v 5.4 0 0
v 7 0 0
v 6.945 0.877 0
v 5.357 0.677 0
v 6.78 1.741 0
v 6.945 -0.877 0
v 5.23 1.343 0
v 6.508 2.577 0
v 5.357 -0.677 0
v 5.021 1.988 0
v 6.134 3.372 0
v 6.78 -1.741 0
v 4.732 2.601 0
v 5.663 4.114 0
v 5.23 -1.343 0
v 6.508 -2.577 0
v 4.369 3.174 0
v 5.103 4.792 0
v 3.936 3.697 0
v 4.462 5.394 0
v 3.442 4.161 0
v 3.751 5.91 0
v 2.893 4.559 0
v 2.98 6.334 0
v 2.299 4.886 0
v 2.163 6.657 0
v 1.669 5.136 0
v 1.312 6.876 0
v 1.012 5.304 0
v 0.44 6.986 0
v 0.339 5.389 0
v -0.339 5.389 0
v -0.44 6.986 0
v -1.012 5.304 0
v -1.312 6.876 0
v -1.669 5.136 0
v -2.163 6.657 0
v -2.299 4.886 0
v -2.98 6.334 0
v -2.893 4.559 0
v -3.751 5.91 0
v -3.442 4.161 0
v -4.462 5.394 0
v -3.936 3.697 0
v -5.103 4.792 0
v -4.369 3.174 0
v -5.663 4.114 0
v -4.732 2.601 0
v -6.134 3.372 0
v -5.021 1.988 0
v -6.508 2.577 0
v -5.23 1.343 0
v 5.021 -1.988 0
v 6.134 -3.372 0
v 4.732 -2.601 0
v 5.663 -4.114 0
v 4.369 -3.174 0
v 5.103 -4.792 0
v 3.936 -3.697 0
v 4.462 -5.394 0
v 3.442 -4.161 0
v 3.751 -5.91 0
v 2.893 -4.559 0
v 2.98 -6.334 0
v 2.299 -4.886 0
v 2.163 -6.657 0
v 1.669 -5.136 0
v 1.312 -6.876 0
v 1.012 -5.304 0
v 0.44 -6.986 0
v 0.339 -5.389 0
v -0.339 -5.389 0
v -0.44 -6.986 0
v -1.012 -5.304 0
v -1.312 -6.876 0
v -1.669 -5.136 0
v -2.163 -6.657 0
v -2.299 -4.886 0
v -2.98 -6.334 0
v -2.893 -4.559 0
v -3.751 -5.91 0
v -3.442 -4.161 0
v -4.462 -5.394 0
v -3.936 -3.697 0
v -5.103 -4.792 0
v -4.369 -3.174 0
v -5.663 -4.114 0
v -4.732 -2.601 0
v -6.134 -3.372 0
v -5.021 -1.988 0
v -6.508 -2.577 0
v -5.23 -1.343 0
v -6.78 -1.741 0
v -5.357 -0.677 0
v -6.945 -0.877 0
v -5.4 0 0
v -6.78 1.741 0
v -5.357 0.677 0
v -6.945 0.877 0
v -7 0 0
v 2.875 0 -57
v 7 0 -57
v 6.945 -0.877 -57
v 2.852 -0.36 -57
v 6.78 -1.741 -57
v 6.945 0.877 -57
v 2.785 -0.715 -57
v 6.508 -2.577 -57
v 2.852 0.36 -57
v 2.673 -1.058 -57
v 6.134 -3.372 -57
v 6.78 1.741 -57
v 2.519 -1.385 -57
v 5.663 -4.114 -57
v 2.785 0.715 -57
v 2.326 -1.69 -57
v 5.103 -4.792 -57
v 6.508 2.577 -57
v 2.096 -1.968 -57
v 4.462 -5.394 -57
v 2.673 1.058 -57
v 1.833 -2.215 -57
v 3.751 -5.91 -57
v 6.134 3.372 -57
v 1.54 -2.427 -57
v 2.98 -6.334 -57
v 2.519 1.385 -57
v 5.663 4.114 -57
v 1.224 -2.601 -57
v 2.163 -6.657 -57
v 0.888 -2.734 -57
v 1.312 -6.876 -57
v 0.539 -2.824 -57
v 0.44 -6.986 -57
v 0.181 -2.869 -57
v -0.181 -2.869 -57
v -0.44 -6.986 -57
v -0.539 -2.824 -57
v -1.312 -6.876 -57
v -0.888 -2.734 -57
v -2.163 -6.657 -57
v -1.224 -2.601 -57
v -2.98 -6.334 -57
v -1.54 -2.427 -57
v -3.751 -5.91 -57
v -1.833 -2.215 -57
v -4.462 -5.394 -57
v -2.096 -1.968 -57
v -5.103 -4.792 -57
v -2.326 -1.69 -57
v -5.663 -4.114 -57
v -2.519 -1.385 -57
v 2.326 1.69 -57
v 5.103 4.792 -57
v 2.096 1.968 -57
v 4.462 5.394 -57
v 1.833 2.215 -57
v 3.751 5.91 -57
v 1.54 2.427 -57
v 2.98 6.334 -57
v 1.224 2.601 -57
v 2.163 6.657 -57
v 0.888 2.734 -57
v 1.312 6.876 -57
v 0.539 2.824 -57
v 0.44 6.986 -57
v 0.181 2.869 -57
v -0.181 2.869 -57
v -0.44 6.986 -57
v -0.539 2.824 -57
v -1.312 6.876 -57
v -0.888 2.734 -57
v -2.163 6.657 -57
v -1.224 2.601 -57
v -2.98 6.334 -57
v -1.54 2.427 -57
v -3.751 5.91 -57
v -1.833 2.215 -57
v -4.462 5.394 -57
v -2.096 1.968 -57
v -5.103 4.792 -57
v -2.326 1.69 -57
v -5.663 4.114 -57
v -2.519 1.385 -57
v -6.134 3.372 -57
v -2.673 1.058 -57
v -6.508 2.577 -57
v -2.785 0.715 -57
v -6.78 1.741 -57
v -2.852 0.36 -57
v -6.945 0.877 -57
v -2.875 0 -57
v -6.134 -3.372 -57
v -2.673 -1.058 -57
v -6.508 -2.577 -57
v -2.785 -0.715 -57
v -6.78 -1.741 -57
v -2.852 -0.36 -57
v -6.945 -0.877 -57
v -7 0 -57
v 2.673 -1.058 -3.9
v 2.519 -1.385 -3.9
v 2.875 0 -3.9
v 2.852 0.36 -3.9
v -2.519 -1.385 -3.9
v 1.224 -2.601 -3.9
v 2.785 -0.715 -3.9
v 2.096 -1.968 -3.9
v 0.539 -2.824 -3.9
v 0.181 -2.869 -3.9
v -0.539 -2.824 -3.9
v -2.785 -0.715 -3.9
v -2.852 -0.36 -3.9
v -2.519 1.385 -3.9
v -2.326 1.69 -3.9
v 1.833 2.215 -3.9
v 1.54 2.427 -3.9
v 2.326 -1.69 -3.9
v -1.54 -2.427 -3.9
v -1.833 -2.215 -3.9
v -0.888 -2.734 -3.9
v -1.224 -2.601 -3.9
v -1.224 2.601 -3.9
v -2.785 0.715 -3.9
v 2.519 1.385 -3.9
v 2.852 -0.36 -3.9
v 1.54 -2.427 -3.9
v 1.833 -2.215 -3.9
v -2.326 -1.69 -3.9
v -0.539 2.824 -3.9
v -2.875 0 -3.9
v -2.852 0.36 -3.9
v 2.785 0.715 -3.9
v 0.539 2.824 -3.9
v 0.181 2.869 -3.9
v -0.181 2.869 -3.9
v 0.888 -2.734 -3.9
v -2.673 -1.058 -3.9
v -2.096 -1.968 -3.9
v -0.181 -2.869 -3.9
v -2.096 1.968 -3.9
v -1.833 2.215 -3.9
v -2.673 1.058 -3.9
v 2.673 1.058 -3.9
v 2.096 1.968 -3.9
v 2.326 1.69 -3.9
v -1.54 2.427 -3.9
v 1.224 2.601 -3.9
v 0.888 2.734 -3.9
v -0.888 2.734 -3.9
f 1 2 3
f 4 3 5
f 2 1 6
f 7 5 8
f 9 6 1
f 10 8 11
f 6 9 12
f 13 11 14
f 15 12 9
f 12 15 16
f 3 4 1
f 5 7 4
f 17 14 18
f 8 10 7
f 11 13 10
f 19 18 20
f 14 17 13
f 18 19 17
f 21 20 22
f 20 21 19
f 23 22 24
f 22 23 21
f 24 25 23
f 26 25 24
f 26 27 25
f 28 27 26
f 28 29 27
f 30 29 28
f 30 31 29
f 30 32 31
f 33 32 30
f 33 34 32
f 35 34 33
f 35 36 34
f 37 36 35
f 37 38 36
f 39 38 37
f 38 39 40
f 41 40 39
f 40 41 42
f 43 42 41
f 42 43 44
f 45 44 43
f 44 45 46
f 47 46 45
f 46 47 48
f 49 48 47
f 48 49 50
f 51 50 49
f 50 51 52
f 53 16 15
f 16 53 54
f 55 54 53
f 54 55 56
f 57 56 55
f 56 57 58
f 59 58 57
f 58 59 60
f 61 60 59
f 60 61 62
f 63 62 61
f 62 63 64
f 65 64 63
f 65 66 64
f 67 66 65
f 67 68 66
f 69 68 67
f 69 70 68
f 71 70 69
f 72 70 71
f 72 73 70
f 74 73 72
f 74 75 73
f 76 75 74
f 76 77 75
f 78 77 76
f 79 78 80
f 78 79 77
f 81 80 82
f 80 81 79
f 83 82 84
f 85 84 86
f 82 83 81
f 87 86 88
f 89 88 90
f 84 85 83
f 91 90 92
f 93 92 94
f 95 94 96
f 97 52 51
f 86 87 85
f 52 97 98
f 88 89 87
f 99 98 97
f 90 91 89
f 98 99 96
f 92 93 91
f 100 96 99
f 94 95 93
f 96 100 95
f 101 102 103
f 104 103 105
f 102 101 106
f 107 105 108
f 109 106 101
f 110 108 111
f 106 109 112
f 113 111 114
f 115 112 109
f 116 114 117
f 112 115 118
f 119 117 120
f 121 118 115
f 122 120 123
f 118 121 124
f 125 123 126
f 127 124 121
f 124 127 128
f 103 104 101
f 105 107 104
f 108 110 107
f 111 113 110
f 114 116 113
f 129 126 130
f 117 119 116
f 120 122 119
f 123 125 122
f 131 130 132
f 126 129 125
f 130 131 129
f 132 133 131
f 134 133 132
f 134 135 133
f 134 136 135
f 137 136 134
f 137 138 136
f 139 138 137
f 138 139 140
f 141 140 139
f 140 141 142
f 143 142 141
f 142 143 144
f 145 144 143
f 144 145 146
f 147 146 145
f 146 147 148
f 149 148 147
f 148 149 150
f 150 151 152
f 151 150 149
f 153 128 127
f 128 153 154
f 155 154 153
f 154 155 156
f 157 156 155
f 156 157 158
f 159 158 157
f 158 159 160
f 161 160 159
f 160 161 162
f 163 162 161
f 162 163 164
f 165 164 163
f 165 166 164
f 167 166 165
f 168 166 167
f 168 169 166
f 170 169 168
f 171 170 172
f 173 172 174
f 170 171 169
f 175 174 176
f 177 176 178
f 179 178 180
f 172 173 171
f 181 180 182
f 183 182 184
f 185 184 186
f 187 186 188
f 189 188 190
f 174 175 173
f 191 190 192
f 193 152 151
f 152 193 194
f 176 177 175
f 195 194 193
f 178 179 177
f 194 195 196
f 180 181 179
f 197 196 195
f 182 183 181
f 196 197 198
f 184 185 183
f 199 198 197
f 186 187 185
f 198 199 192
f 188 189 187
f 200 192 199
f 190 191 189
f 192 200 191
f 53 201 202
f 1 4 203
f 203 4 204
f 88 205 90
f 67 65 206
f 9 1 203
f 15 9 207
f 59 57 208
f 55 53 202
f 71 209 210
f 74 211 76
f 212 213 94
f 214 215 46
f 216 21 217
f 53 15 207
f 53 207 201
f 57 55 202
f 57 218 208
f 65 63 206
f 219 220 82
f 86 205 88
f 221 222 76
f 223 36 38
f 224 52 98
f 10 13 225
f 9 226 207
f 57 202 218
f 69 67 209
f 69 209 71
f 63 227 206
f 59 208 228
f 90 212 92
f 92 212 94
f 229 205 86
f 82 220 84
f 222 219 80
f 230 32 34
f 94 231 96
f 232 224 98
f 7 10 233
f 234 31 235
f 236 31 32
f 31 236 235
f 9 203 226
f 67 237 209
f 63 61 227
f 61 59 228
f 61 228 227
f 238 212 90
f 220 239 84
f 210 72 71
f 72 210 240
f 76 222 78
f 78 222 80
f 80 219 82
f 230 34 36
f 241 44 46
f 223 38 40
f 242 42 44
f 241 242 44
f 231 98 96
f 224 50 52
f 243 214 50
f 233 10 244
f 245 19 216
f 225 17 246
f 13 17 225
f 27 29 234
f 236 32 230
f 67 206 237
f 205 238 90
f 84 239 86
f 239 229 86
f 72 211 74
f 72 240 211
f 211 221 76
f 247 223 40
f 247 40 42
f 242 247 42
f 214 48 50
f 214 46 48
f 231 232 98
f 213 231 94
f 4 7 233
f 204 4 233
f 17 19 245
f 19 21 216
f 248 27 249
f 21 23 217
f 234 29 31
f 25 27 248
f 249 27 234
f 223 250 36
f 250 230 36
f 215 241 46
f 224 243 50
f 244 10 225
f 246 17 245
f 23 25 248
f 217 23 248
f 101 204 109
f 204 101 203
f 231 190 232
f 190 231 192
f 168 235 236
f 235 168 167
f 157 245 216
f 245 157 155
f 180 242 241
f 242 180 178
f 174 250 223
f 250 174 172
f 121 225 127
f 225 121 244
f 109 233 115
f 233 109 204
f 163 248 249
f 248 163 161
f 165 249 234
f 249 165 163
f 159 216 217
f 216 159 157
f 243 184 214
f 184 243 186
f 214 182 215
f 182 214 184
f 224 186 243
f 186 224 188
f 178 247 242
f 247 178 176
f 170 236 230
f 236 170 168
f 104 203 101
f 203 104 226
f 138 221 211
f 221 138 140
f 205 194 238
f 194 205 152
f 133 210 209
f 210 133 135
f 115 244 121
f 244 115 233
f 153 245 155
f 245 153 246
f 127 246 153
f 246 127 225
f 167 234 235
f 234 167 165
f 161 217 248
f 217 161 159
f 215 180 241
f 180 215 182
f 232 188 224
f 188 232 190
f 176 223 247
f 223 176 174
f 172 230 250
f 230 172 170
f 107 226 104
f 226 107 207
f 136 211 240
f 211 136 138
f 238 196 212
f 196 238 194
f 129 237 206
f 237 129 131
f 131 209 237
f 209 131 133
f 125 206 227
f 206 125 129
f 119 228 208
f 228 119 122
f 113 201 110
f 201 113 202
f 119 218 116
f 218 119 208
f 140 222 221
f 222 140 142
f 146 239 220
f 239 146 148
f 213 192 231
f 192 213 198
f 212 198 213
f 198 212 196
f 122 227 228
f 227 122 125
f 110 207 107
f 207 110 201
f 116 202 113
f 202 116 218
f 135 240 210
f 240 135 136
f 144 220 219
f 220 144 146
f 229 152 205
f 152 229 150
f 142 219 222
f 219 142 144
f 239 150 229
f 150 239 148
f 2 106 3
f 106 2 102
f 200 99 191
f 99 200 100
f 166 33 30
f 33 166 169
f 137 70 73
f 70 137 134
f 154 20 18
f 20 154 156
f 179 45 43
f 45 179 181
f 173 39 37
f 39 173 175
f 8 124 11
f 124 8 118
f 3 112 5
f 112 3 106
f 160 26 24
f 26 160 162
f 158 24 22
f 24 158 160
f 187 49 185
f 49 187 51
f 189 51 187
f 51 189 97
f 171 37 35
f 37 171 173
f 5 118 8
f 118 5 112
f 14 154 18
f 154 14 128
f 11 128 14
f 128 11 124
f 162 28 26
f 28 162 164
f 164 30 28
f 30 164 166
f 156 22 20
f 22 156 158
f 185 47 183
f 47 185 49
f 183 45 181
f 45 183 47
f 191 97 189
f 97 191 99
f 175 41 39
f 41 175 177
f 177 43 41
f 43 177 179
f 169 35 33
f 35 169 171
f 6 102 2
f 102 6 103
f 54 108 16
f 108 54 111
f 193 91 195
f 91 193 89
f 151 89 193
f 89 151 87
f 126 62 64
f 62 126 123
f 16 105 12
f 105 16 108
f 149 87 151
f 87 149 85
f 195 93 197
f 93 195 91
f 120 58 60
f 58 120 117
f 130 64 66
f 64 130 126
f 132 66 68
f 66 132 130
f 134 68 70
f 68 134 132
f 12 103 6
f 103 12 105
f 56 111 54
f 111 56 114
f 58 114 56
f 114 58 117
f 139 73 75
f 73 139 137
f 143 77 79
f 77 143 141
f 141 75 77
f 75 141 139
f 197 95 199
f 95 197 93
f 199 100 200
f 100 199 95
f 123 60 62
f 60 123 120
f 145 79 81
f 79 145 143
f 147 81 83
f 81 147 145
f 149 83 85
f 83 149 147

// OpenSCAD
$fn = 50;


difference() {
	union() {
		translate(v = [0, 0, -57.0000000000]) {
			cylinder(h = 57, r = 7.0000000000);
		}
		cylinder(h = 0, r = 13.0000000000);
	}
	union() {
		translate(v = [0, 0, 0]) {
			rotate(a = [0, 0, 0]) {
				difference() {
					union() {
						#translate(v = [0, 0, -57.0000000000]) {
							cylinder(h = 57, r = 2.6000000000);
						}
						#translate(v = [0, 0, -3.9000000000]) {
							cylinder(h = 3.9000000000, r = 7.0000000000, r1 = 2.8750000000, r2 = 5.4000000000);
						}
						#translate(v = [0, 0, -57.0000000000]) {
							cylinder(h = 57, r = 2.8750000000);
						}
						#translate(v = [0, 0, -57.0000000000]) {
							cylinder(h = 57, r = 2.6000000000);
						}
					}
					union();
				}
			}
		}
	}
}
